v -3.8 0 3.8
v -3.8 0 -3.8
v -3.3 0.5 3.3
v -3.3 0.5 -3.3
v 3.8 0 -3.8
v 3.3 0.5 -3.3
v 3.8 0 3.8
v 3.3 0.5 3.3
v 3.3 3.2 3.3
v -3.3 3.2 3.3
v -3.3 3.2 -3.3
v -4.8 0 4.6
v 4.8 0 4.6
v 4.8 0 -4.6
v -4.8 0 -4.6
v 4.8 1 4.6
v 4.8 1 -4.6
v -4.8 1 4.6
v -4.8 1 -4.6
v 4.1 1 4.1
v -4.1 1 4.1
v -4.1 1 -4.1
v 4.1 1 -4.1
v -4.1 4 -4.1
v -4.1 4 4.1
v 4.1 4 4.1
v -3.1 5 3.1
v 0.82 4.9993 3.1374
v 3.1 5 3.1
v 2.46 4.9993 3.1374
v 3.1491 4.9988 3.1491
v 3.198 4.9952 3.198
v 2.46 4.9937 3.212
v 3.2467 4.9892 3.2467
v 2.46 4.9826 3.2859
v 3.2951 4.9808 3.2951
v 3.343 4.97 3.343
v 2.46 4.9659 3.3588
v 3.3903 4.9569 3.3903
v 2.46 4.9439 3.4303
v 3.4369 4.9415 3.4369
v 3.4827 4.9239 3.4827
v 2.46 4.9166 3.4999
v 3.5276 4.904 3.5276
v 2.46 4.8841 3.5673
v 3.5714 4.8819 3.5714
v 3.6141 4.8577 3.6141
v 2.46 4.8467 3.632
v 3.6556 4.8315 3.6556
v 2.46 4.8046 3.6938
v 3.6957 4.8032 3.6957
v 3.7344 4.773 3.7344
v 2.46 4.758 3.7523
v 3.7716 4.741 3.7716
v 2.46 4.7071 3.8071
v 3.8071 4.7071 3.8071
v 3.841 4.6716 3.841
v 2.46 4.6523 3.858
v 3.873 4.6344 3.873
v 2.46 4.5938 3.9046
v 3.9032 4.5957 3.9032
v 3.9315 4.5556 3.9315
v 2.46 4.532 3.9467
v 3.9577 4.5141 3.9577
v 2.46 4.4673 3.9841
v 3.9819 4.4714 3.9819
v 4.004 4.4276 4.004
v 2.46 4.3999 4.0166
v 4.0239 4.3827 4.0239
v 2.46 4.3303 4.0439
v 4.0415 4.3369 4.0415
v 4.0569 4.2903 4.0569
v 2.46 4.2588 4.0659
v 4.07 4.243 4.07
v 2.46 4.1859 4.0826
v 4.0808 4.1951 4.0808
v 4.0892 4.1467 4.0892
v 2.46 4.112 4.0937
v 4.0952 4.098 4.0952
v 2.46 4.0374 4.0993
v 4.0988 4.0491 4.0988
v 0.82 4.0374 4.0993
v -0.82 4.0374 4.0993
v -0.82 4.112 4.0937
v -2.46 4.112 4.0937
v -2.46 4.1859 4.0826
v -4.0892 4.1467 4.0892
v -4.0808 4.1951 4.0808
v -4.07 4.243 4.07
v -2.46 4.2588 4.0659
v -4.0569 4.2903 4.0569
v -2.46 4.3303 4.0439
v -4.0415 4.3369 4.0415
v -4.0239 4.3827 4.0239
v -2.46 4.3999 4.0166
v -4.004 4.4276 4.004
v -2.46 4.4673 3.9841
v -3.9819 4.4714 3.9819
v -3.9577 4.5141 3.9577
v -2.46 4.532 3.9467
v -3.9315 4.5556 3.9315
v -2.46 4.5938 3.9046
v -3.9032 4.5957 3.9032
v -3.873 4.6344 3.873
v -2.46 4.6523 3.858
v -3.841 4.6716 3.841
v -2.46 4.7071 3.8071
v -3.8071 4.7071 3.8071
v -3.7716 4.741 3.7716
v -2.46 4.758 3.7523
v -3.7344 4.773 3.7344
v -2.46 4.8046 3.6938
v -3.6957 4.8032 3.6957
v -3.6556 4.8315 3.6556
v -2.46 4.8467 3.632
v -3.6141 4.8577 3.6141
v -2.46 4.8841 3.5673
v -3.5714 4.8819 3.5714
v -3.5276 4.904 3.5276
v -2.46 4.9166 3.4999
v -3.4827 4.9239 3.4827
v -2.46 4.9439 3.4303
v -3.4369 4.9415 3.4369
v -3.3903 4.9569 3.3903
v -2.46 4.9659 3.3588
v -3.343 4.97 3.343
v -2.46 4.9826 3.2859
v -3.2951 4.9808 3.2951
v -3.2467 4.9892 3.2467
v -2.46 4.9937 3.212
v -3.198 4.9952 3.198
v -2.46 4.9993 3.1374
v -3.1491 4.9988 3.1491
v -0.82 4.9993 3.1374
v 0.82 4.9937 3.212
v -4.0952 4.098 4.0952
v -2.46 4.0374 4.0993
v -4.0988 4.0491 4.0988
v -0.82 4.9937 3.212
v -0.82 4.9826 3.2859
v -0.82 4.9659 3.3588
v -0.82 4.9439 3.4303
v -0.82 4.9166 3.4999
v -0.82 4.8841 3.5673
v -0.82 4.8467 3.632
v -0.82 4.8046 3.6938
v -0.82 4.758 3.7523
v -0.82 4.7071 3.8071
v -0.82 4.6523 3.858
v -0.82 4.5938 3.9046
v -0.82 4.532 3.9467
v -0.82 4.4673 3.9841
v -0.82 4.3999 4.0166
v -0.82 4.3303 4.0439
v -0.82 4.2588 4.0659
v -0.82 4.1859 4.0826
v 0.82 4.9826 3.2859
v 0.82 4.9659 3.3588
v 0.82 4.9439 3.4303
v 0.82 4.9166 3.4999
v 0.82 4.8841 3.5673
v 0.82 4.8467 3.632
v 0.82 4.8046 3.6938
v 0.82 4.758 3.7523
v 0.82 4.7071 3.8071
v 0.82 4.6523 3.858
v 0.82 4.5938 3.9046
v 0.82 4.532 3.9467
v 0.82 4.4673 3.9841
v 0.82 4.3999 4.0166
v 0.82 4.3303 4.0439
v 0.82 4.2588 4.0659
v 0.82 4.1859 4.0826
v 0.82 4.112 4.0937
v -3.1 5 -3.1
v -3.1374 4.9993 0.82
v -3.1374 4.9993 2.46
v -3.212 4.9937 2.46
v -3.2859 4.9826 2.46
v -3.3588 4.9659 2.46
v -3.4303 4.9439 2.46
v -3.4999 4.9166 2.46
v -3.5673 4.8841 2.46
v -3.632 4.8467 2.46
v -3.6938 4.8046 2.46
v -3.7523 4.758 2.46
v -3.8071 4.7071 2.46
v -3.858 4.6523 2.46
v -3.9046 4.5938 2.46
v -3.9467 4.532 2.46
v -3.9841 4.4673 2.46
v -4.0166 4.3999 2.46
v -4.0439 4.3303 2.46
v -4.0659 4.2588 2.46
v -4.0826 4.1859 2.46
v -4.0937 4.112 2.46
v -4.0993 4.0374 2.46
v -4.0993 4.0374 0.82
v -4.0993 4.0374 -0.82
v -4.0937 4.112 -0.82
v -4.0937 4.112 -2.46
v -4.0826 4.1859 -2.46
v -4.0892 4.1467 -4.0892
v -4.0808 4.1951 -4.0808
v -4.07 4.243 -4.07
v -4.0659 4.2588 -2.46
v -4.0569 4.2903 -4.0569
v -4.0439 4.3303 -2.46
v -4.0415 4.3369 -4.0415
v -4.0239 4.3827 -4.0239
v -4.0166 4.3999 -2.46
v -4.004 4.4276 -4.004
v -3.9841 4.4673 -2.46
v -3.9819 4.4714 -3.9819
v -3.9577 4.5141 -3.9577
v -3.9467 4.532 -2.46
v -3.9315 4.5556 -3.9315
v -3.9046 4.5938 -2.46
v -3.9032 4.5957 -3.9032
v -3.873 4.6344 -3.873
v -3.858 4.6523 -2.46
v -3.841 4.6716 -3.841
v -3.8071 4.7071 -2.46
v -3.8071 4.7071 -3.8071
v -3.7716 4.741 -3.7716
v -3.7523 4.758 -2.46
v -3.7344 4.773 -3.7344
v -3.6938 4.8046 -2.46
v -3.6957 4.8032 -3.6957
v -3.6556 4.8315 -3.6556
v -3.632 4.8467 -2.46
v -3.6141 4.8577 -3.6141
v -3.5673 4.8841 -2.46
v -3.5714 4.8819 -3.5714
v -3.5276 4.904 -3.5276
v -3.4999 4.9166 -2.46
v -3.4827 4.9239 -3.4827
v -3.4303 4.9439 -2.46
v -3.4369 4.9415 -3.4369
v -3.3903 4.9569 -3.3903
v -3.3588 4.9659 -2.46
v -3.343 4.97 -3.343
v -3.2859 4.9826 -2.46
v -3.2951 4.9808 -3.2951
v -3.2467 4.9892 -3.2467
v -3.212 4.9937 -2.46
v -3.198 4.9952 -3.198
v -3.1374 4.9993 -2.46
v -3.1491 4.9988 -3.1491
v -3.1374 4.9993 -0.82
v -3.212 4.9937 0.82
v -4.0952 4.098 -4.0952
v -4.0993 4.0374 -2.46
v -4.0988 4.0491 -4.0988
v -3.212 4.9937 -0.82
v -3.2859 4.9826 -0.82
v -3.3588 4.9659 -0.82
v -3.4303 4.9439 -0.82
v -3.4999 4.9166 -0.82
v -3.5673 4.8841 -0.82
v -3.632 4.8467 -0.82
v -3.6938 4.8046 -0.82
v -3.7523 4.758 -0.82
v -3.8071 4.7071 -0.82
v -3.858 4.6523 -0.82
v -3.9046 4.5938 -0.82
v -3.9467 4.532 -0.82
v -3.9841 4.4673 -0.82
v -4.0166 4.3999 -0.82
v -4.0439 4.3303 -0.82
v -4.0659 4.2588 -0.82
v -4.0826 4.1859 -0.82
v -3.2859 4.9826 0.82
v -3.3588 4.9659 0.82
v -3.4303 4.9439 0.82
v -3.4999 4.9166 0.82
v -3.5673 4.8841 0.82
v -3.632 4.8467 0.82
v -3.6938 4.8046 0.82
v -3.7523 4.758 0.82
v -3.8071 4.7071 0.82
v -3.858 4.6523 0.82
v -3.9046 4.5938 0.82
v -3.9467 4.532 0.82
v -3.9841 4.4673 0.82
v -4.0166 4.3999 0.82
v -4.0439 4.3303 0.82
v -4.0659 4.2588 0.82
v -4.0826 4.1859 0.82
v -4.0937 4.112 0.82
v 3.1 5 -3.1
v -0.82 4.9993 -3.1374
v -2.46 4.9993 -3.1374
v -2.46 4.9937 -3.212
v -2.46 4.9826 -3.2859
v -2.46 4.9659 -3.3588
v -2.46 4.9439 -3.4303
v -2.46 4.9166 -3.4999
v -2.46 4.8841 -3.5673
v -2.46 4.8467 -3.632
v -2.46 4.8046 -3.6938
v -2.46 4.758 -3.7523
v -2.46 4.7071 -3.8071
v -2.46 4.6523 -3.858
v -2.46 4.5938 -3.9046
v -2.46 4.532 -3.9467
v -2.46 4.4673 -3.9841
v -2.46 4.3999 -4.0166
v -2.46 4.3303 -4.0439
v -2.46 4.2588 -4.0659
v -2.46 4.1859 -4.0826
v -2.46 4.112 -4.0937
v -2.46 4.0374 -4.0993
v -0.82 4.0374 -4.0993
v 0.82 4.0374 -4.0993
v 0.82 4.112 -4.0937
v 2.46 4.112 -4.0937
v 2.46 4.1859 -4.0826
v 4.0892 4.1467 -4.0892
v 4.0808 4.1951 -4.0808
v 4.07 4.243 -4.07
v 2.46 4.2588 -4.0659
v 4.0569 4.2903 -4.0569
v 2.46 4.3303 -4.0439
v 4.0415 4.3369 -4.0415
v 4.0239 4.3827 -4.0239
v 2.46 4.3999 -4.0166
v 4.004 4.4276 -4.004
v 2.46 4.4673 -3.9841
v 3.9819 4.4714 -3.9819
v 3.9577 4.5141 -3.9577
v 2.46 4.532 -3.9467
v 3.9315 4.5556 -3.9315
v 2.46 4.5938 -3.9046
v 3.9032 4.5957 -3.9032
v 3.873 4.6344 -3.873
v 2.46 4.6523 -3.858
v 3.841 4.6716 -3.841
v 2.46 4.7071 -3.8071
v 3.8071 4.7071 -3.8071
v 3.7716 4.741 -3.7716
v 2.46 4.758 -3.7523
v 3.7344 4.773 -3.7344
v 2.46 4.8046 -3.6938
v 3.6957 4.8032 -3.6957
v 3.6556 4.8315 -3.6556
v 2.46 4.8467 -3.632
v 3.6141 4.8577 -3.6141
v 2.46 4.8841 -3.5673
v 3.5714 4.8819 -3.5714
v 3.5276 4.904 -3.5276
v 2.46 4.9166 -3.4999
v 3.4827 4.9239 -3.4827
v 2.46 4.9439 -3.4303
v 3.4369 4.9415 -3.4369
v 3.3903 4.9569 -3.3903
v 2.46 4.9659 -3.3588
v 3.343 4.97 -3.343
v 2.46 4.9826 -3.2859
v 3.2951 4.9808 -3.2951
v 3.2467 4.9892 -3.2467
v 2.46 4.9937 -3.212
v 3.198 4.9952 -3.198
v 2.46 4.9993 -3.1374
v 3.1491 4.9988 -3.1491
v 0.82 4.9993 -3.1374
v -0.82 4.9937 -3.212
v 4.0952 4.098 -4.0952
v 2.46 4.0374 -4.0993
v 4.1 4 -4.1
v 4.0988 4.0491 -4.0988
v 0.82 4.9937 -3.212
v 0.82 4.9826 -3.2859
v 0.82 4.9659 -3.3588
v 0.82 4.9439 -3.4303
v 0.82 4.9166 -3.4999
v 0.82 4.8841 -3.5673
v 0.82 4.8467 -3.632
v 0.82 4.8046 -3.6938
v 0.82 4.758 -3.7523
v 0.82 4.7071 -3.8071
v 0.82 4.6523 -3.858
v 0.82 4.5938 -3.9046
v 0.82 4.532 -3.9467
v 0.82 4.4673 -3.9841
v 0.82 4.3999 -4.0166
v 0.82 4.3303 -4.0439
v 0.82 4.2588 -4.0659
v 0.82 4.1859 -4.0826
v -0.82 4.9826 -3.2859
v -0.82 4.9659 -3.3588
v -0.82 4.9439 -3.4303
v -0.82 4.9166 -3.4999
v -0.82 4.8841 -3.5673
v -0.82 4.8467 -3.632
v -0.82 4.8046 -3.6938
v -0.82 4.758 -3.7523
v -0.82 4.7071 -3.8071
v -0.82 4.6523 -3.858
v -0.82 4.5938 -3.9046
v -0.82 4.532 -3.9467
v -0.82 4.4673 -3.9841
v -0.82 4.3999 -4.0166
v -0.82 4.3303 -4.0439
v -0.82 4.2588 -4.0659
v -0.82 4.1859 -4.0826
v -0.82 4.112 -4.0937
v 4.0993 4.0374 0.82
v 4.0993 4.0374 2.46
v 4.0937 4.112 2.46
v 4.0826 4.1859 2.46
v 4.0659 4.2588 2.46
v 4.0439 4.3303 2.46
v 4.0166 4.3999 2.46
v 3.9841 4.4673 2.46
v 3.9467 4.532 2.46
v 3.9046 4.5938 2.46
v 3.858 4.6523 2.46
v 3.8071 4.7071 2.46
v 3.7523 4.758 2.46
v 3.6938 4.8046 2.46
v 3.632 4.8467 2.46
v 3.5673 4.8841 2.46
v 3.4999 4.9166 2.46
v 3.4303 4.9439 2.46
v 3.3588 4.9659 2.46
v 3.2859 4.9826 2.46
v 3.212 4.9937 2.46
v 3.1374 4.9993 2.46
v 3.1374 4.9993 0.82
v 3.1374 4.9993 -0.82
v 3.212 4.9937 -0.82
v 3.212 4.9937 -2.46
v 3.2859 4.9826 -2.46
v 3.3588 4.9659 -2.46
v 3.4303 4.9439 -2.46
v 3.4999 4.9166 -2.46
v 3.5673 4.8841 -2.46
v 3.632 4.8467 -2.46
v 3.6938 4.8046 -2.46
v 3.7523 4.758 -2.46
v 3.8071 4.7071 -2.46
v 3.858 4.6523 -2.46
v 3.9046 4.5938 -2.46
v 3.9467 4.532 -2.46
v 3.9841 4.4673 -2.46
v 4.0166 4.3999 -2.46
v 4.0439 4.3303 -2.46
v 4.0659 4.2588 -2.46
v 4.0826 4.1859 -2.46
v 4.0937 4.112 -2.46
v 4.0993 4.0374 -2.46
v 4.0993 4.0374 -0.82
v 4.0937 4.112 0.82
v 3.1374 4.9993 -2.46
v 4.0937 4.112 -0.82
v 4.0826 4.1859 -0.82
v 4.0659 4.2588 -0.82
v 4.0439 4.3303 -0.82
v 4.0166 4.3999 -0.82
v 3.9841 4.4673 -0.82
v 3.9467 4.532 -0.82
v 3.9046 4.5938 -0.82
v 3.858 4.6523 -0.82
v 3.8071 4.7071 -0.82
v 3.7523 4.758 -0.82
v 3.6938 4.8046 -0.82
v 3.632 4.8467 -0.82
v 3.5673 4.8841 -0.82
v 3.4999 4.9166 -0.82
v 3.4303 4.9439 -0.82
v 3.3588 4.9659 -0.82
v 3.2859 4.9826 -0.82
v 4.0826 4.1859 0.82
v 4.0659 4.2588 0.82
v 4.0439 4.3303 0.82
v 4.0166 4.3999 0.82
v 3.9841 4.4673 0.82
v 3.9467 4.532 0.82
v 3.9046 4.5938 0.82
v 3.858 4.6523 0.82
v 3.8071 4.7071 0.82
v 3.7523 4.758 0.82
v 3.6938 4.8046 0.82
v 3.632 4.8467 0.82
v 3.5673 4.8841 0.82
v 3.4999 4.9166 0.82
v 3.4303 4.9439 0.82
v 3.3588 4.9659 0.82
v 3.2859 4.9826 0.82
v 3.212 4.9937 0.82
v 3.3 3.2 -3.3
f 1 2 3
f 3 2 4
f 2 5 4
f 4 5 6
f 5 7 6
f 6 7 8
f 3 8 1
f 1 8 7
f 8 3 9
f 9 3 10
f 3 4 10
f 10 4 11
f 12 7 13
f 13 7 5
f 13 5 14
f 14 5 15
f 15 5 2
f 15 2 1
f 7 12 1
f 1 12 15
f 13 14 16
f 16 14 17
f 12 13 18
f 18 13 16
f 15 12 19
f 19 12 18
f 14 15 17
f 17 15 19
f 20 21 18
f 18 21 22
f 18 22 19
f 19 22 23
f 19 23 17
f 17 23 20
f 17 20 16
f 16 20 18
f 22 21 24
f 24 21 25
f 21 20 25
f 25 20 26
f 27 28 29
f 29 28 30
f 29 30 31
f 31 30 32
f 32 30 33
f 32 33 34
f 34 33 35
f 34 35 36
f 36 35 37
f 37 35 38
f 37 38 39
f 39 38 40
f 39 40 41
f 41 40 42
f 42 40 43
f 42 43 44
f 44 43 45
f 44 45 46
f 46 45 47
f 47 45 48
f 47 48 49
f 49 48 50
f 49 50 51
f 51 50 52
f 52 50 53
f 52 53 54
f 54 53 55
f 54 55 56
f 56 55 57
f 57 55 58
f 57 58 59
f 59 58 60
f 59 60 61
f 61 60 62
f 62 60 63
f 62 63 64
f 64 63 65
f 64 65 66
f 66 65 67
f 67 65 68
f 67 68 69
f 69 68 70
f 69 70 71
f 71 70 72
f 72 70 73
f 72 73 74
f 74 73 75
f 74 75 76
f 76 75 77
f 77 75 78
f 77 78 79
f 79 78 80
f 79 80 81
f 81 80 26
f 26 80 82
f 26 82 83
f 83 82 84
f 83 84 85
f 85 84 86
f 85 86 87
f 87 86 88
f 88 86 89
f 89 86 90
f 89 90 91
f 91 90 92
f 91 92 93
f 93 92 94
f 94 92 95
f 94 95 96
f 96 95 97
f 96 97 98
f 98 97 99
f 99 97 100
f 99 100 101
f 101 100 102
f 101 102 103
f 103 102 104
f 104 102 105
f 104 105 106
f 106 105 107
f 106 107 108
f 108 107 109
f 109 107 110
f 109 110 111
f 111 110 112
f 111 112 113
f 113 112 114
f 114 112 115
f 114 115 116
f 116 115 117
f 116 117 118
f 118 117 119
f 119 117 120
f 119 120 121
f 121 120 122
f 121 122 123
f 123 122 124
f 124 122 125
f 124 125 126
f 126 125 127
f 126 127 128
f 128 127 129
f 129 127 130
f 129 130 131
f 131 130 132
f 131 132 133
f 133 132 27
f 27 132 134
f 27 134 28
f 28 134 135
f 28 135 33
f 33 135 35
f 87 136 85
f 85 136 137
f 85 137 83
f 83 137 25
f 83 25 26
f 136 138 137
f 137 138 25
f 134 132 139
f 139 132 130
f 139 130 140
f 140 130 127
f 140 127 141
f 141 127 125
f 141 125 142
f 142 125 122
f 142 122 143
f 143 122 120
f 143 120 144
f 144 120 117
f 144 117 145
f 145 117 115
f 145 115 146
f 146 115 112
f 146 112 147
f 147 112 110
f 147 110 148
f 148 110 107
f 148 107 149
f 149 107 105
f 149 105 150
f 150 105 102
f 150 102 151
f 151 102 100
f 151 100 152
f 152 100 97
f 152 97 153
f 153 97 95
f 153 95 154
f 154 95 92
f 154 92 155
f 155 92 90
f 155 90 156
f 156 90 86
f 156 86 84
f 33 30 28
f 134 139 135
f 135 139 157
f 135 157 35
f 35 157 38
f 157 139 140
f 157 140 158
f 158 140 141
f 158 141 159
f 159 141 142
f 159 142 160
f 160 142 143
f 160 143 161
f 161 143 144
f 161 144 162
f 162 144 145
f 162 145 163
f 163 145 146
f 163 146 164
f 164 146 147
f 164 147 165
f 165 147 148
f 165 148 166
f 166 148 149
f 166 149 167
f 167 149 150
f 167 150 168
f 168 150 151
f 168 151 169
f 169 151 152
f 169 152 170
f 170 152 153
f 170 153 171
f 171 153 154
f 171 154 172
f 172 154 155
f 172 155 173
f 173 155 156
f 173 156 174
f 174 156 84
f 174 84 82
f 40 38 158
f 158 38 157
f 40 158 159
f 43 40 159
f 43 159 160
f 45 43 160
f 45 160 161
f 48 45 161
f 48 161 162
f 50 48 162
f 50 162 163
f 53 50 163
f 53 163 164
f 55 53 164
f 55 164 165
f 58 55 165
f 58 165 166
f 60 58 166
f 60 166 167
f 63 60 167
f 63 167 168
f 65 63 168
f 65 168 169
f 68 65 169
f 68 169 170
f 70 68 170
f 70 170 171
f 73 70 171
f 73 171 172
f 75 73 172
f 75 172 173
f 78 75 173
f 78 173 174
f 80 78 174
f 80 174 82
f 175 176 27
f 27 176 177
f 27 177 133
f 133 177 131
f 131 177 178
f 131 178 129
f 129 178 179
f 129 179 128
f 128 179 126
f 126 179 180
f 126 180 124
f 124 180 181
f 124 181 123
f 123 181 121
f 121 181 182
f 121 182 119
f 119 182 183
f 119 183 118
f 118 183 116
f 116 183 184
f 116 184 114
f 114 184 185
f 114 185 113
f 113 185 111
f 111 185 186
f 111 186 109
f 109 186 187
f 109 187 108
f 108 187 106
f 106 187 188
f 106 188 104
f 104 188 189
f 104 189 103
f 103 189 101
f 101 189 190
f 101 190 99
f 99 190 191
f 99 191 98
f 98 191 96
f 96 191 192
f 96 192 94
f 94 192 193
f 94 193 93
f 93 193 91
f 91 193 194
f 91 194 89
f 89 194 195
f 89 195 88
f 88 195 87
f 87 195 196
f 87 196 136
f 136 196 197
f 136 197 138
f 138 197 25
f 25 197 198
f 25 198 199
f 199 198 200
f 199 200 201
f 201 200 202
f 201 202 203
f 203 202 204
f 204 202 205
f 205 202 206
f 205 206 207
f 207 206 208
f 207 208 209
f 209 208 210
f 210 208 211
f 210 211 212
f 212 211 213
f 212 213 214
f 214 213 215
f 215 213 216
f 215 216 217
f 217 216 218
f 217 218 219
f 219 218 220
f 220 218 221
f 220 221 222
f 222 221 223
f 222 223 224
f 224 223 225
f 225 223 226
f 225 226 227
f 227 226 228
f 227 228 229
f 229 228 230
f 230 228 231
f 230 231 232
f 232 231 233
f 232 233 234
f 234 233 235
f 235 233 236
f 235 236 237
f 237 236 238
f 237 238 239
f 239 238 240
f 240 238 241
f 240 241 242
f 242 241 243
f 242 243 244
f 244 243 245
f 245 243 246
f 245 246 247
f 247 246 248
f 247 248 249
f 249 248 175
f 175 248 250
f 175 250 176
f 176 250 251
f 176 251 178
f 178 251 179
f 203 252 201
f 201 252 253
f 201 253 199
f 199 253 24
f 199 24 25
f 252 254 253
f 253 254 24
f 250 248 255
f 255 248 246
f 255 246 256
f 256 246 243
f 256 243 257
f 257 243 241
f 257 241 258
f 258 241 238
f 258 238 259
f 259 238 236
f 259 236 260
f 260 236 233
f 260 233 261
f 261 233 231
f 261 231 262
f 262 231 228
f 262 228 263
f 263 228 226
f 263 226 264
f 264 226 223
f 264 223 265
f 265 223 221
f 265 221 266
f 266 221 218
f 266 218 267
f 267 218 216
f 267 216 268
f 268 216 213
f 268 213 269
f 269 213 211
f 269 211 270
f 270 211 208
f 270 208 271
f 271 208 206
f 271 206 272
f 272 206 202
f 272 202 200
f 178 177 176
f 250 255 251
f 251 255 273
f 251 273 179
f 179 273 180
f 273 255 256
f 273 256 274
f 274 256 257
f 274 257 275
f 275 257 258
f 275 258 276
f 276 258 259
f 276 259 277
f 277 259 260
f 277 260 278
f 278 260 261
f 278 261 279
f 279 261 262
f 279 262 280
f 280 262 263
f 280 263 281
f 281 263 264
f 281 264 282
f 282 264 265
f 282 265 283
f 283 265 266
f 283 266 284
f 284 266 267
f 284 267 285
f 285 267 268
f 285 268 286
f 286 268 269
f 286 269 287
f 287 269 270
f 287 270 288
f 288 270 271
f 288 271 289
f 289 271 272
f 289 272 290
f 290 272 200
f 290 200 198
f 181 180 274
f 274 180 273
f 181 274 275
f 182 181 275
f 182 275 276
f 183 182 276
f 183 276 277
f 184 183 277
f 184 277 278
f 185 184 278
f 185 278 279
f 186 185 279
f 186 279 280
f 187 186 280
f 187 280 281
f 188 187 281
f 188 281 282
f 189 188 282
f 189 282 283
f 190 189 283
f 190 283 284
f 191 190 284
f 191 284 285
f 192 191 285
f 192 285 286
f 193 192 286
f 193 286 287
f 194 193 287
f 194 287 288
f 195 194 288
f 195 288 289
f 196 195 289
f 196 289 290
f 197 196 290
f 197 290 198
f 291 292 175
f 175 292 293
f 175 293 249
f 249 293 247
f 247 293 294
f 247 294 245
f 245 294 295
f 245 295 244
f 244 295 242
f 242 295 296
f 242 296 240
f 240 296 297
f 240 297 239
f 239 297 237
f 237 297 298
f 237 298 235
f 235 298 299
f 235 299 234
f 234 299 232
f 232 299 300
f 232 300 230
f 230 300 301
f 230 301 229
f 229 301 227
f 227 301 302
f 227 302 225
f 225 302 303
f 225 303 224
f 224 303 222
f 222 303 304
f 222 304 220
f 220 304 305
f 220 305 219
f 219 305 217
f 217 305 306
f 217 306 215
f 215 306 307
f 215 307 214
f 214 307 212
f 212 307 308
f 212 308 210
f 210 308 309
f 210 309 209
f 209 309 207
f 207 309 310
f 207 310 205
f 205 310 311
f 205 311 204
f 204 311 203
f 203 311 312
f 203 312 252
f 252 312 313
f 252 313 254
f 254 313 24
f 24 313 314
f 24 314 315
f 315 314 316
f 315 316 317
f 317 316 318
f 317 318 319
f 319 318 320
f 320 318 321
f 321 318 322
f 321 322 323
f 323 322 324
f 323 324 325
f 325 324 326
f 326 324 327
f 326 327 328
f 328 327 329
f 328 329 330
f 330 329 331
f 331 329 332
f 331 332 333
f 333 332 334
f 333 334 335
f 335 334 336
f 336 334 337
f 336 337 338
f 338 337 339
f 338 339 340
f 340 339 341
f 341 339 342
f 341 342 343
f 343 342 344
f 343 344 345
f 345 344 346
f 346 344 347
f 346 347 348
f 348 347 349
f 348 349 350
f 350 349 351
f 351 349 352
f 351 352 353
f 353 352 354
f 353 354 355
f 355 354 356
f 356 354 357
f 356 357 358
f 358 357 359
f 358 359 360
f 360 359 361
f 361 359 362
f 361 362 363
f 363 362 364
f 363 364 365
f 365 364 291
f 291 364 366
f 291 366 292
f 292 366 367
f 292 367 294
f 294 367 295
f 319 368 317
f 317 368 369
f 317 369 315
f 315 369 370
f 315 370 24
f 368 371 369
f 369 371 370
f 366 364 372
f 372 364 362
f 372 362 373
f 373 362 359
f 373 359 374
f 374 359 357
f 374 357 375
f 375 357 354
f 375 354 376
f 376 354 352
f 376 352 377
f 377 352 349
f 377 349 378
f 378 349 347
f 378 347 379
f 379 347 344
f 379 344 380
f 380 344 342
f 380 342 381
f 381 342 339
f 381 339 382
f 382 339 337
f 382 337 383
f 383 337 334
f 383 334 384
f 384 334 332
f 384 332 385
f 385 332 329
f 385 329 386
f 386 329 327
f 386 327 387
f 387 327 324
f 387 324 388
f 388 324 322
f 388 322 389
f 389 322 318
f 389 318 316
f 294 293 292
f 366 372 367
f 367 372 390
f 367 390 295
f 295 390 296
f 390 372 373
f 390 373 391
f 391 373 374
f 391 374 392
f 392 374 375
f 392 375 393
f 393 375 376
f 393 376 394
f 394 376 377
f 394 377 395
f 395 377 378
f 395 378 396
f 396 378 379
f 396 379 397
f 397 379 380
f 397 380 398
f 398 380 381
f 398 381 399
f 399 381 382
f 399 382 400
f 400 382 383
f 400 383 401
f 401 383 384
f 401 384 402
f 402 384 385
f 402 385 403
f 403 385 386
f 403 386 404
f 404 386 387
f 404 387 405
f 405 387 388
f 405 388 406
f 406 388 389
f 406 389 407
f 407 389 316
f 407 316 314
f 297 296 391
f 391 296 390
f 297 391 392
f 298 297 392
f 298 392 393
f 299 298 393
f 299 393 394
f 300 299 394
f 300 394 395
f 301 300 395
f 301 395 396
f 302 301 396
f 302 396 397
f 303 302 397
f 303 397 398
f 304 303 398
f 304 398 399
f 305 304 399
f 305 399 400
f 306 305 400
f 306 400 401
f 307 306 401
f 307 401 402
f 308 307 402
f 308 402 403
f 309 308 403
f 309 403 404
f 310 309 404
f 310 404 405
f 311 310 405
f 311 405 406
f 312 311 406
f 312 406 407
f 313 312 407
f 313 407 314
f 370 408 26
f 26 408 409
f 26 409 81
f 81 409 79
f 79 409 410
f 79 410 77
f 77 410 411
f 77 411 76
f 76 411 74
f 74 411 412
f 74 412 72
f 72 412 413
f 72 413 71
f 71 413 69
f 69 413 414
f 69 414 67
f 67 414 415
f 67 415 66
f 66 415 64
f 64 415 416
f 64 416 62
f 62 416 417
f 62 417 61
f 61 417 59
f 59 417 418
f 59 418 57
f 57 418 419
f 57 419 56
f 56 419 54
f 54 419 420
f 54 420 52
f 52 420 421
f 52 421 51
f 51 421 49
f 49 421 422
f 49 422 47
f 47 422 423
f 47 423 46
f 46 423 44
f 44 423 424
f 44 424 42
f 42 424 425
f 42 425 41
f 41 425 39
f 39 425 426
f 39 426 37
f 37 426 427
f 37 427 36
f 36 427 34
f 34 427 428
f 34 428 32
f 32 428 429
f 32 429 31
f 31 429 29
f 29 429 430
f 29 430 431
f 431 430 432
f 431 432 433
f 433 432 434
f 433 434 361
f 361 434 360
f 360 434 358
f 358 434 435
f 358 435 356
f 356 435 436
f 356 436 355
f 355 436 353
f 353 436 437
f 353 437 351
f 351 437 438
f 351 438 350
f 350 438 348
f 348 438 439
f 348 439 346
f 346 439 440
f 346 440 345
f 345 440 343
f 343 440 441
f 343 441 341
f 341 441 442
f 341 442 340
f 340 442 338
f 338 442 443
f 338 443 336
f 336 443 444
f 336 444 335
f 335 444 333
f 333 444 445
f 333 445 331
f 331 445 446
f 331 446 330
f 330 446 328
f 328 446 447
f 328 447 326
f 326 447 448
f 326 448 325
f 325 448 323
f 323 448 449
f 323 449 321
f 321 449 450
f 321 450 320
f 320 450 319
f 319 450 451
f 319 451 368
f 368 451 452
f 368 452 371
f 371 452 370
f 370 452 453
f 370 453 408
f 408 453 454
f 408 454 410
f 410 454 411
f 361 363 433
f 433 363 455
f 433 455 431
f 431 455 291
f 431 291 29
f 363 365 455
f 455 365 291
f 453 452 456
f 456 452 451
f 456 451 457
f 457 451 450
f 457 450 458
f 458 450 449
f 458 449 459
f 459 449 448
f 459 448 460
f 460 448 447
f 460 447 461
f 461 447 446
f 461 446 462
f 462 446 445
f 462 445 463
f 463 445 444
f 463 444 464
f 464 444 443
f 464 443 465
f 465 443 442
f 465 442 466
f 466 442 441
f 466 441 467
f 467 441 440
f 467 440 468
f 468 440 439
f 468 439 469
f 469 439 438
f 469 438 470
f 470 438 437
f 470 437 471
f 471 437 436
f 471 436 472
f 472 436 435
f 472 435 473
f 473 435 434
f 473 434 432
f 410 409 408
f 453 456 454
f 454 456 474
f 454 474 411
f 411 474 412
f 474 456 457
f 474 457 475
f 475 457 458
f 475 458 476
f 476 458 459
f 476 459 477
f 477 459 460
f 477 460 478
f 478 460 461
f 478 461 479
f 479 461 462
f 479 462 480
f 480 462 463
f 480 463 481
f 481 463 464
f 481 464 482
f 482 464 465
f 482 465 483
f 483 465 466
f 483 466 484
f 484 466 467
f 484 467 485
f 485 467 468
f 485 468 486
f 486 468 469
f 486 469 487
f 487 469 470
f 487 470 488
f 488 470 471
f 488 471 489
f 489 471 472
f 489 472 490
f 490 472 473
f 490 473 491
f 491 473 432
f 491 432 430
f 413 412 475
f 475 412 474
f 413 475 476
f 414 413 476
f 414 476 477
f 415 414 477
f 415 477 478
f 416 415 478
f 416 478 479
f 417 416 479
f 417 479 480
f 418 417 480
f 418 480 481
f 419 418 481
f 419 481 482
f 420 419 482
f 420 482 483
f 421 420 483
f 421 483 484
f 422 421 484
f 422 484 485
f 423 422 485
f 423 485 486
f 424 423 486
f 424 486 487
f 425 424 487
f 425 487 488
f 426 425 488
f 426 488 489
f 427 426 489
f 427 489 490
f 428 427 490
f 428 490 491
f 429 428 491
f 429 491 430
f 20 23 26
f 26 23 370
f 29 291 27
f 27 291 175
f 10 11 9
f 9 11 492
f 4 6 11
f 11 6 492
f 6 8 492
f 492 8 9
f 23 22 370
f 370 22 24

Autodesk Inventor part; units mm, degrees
ref_plane "YZ Plane" through (0, 0, 0) normal (1, 0, 0) x (0, 1, 0)
ref_plane "XZ Plane" through (0, 0, 0) normal (0, 1, 0) x (-1, 0, 0)
ref_plane "XY Plane" through (0, 0, 0) normal (0, 0, 1) x (1, 0, 0)
sketch "Эскиз1" plane through (0, 0, 0) normal (0, 1, 0) x (-1, 0, 0)
  line L0 (4.1, 4.1) -> (-4.1, 4.1)
  line L1 (-4.1, 4.1) -> (-4.1, -4.1)
  line L2 (-4.1, -4.1) -> (4.1, -4.1)
  line L3 (4.1, -4.1) -> (4.1, 4.1)
  line L4 (5.74, 0) -> (-5.74, 0) projected
  line L5 (0, -5.74) -> (0, 5.74) projected
  point P0 (0, 0)
  dimension "d0" = 8.2
extrude "Выдавливание1" add sketch "Эскиз1" along normal blind 5
shell "Оболочка1" thickness 0.8 removed faces 1 at (1.3667, 0, 1.3667)
sketch "Эскиз3" plane through (-3.3, 4.2, 3.3) normal (0, -1, 0) x (1, 0, 0)
  line L0 (0, 0) -> (6.6, 0) projected
  line L1 (6.6, -6.6) -> (0, -6.6) projected
  line L2 (6.6, 0) -> (0, 0)
  line L3 (0, 0) -> (0, -6.6)
  line L4 (0, -6.6) -> (6.6, -6.6)
  line L5 (6.6, -6.6) -> (6.6, 0)
  point P0 (3.3, -3.3)
extrude "Выдавливание2" add sketch "Эскиз3" along normal blind 1
fillet "Сопряжение1" radius 1 4 edges at (0, 5, -4.1) (0, 5, 4.1) (4.1, 5, 0) (-4.1, 5, 0)
sketch "Эскиз5" plane through (0, 0, 0) normal (0, -1, 0) x (1, 0, 0)
  line L0 (-4.1, 4.1) -> (4.1, 4.1) projected
  line L1 (4.1, 4.1) -> (4.1, -4.1) projected
  line L2 (4.1, -4.1) -> (-4.1, -4.1) projected
  line L3 (-4.1, -4.1) -> (-4.1, 4.1) projected
  line L4 (-4.6, -4.6) -> (4.6, -4.6)
  line L5 (4.6, -4.6) -> (4.6, 4.6)
  line L6 (4.6, 4.6) -> (-4.6, 4.6)
  line L7 (-4.6, 4.6) -> (-4.6, -4.6)
  line L8 (4.6, -4.6) -> (4.8, -4.6)
  line L9 (4.8, -4.6) -> (4.8, 4.6)
  line L10 (4.8, 4.6) -> (4.6, 4.6)
  line L11 (4.6, 4.6) -> (4.6, -4.6)
  line L12 (-4.6, -4.6) -> (-4.8, -4.6)
  line L13 (-4.8, -4.6) -> (-4.8, 4.6)
  line L14 (-4.8, 4.6) -> (-4.6, 4.6)
  line L15 (-4.6, 4.6) -> (-4.6, -4.6)
  point P0 (0, 0)
  dimension "d10" = 0.5
  dimension "d13" = 0.2
  dimension "d14" = 0.2
extrude "Выдавливание4" add sketch "Эскиз5" against normal blind 1
chamfer "Фаска1" distance 0.5 angle 45 4 edges at (-3.3, 0, 0) (0, 0, 3.3) (3.3, 0, 0) (0, 0, -3.3)
properties part number "BUTTON2"
